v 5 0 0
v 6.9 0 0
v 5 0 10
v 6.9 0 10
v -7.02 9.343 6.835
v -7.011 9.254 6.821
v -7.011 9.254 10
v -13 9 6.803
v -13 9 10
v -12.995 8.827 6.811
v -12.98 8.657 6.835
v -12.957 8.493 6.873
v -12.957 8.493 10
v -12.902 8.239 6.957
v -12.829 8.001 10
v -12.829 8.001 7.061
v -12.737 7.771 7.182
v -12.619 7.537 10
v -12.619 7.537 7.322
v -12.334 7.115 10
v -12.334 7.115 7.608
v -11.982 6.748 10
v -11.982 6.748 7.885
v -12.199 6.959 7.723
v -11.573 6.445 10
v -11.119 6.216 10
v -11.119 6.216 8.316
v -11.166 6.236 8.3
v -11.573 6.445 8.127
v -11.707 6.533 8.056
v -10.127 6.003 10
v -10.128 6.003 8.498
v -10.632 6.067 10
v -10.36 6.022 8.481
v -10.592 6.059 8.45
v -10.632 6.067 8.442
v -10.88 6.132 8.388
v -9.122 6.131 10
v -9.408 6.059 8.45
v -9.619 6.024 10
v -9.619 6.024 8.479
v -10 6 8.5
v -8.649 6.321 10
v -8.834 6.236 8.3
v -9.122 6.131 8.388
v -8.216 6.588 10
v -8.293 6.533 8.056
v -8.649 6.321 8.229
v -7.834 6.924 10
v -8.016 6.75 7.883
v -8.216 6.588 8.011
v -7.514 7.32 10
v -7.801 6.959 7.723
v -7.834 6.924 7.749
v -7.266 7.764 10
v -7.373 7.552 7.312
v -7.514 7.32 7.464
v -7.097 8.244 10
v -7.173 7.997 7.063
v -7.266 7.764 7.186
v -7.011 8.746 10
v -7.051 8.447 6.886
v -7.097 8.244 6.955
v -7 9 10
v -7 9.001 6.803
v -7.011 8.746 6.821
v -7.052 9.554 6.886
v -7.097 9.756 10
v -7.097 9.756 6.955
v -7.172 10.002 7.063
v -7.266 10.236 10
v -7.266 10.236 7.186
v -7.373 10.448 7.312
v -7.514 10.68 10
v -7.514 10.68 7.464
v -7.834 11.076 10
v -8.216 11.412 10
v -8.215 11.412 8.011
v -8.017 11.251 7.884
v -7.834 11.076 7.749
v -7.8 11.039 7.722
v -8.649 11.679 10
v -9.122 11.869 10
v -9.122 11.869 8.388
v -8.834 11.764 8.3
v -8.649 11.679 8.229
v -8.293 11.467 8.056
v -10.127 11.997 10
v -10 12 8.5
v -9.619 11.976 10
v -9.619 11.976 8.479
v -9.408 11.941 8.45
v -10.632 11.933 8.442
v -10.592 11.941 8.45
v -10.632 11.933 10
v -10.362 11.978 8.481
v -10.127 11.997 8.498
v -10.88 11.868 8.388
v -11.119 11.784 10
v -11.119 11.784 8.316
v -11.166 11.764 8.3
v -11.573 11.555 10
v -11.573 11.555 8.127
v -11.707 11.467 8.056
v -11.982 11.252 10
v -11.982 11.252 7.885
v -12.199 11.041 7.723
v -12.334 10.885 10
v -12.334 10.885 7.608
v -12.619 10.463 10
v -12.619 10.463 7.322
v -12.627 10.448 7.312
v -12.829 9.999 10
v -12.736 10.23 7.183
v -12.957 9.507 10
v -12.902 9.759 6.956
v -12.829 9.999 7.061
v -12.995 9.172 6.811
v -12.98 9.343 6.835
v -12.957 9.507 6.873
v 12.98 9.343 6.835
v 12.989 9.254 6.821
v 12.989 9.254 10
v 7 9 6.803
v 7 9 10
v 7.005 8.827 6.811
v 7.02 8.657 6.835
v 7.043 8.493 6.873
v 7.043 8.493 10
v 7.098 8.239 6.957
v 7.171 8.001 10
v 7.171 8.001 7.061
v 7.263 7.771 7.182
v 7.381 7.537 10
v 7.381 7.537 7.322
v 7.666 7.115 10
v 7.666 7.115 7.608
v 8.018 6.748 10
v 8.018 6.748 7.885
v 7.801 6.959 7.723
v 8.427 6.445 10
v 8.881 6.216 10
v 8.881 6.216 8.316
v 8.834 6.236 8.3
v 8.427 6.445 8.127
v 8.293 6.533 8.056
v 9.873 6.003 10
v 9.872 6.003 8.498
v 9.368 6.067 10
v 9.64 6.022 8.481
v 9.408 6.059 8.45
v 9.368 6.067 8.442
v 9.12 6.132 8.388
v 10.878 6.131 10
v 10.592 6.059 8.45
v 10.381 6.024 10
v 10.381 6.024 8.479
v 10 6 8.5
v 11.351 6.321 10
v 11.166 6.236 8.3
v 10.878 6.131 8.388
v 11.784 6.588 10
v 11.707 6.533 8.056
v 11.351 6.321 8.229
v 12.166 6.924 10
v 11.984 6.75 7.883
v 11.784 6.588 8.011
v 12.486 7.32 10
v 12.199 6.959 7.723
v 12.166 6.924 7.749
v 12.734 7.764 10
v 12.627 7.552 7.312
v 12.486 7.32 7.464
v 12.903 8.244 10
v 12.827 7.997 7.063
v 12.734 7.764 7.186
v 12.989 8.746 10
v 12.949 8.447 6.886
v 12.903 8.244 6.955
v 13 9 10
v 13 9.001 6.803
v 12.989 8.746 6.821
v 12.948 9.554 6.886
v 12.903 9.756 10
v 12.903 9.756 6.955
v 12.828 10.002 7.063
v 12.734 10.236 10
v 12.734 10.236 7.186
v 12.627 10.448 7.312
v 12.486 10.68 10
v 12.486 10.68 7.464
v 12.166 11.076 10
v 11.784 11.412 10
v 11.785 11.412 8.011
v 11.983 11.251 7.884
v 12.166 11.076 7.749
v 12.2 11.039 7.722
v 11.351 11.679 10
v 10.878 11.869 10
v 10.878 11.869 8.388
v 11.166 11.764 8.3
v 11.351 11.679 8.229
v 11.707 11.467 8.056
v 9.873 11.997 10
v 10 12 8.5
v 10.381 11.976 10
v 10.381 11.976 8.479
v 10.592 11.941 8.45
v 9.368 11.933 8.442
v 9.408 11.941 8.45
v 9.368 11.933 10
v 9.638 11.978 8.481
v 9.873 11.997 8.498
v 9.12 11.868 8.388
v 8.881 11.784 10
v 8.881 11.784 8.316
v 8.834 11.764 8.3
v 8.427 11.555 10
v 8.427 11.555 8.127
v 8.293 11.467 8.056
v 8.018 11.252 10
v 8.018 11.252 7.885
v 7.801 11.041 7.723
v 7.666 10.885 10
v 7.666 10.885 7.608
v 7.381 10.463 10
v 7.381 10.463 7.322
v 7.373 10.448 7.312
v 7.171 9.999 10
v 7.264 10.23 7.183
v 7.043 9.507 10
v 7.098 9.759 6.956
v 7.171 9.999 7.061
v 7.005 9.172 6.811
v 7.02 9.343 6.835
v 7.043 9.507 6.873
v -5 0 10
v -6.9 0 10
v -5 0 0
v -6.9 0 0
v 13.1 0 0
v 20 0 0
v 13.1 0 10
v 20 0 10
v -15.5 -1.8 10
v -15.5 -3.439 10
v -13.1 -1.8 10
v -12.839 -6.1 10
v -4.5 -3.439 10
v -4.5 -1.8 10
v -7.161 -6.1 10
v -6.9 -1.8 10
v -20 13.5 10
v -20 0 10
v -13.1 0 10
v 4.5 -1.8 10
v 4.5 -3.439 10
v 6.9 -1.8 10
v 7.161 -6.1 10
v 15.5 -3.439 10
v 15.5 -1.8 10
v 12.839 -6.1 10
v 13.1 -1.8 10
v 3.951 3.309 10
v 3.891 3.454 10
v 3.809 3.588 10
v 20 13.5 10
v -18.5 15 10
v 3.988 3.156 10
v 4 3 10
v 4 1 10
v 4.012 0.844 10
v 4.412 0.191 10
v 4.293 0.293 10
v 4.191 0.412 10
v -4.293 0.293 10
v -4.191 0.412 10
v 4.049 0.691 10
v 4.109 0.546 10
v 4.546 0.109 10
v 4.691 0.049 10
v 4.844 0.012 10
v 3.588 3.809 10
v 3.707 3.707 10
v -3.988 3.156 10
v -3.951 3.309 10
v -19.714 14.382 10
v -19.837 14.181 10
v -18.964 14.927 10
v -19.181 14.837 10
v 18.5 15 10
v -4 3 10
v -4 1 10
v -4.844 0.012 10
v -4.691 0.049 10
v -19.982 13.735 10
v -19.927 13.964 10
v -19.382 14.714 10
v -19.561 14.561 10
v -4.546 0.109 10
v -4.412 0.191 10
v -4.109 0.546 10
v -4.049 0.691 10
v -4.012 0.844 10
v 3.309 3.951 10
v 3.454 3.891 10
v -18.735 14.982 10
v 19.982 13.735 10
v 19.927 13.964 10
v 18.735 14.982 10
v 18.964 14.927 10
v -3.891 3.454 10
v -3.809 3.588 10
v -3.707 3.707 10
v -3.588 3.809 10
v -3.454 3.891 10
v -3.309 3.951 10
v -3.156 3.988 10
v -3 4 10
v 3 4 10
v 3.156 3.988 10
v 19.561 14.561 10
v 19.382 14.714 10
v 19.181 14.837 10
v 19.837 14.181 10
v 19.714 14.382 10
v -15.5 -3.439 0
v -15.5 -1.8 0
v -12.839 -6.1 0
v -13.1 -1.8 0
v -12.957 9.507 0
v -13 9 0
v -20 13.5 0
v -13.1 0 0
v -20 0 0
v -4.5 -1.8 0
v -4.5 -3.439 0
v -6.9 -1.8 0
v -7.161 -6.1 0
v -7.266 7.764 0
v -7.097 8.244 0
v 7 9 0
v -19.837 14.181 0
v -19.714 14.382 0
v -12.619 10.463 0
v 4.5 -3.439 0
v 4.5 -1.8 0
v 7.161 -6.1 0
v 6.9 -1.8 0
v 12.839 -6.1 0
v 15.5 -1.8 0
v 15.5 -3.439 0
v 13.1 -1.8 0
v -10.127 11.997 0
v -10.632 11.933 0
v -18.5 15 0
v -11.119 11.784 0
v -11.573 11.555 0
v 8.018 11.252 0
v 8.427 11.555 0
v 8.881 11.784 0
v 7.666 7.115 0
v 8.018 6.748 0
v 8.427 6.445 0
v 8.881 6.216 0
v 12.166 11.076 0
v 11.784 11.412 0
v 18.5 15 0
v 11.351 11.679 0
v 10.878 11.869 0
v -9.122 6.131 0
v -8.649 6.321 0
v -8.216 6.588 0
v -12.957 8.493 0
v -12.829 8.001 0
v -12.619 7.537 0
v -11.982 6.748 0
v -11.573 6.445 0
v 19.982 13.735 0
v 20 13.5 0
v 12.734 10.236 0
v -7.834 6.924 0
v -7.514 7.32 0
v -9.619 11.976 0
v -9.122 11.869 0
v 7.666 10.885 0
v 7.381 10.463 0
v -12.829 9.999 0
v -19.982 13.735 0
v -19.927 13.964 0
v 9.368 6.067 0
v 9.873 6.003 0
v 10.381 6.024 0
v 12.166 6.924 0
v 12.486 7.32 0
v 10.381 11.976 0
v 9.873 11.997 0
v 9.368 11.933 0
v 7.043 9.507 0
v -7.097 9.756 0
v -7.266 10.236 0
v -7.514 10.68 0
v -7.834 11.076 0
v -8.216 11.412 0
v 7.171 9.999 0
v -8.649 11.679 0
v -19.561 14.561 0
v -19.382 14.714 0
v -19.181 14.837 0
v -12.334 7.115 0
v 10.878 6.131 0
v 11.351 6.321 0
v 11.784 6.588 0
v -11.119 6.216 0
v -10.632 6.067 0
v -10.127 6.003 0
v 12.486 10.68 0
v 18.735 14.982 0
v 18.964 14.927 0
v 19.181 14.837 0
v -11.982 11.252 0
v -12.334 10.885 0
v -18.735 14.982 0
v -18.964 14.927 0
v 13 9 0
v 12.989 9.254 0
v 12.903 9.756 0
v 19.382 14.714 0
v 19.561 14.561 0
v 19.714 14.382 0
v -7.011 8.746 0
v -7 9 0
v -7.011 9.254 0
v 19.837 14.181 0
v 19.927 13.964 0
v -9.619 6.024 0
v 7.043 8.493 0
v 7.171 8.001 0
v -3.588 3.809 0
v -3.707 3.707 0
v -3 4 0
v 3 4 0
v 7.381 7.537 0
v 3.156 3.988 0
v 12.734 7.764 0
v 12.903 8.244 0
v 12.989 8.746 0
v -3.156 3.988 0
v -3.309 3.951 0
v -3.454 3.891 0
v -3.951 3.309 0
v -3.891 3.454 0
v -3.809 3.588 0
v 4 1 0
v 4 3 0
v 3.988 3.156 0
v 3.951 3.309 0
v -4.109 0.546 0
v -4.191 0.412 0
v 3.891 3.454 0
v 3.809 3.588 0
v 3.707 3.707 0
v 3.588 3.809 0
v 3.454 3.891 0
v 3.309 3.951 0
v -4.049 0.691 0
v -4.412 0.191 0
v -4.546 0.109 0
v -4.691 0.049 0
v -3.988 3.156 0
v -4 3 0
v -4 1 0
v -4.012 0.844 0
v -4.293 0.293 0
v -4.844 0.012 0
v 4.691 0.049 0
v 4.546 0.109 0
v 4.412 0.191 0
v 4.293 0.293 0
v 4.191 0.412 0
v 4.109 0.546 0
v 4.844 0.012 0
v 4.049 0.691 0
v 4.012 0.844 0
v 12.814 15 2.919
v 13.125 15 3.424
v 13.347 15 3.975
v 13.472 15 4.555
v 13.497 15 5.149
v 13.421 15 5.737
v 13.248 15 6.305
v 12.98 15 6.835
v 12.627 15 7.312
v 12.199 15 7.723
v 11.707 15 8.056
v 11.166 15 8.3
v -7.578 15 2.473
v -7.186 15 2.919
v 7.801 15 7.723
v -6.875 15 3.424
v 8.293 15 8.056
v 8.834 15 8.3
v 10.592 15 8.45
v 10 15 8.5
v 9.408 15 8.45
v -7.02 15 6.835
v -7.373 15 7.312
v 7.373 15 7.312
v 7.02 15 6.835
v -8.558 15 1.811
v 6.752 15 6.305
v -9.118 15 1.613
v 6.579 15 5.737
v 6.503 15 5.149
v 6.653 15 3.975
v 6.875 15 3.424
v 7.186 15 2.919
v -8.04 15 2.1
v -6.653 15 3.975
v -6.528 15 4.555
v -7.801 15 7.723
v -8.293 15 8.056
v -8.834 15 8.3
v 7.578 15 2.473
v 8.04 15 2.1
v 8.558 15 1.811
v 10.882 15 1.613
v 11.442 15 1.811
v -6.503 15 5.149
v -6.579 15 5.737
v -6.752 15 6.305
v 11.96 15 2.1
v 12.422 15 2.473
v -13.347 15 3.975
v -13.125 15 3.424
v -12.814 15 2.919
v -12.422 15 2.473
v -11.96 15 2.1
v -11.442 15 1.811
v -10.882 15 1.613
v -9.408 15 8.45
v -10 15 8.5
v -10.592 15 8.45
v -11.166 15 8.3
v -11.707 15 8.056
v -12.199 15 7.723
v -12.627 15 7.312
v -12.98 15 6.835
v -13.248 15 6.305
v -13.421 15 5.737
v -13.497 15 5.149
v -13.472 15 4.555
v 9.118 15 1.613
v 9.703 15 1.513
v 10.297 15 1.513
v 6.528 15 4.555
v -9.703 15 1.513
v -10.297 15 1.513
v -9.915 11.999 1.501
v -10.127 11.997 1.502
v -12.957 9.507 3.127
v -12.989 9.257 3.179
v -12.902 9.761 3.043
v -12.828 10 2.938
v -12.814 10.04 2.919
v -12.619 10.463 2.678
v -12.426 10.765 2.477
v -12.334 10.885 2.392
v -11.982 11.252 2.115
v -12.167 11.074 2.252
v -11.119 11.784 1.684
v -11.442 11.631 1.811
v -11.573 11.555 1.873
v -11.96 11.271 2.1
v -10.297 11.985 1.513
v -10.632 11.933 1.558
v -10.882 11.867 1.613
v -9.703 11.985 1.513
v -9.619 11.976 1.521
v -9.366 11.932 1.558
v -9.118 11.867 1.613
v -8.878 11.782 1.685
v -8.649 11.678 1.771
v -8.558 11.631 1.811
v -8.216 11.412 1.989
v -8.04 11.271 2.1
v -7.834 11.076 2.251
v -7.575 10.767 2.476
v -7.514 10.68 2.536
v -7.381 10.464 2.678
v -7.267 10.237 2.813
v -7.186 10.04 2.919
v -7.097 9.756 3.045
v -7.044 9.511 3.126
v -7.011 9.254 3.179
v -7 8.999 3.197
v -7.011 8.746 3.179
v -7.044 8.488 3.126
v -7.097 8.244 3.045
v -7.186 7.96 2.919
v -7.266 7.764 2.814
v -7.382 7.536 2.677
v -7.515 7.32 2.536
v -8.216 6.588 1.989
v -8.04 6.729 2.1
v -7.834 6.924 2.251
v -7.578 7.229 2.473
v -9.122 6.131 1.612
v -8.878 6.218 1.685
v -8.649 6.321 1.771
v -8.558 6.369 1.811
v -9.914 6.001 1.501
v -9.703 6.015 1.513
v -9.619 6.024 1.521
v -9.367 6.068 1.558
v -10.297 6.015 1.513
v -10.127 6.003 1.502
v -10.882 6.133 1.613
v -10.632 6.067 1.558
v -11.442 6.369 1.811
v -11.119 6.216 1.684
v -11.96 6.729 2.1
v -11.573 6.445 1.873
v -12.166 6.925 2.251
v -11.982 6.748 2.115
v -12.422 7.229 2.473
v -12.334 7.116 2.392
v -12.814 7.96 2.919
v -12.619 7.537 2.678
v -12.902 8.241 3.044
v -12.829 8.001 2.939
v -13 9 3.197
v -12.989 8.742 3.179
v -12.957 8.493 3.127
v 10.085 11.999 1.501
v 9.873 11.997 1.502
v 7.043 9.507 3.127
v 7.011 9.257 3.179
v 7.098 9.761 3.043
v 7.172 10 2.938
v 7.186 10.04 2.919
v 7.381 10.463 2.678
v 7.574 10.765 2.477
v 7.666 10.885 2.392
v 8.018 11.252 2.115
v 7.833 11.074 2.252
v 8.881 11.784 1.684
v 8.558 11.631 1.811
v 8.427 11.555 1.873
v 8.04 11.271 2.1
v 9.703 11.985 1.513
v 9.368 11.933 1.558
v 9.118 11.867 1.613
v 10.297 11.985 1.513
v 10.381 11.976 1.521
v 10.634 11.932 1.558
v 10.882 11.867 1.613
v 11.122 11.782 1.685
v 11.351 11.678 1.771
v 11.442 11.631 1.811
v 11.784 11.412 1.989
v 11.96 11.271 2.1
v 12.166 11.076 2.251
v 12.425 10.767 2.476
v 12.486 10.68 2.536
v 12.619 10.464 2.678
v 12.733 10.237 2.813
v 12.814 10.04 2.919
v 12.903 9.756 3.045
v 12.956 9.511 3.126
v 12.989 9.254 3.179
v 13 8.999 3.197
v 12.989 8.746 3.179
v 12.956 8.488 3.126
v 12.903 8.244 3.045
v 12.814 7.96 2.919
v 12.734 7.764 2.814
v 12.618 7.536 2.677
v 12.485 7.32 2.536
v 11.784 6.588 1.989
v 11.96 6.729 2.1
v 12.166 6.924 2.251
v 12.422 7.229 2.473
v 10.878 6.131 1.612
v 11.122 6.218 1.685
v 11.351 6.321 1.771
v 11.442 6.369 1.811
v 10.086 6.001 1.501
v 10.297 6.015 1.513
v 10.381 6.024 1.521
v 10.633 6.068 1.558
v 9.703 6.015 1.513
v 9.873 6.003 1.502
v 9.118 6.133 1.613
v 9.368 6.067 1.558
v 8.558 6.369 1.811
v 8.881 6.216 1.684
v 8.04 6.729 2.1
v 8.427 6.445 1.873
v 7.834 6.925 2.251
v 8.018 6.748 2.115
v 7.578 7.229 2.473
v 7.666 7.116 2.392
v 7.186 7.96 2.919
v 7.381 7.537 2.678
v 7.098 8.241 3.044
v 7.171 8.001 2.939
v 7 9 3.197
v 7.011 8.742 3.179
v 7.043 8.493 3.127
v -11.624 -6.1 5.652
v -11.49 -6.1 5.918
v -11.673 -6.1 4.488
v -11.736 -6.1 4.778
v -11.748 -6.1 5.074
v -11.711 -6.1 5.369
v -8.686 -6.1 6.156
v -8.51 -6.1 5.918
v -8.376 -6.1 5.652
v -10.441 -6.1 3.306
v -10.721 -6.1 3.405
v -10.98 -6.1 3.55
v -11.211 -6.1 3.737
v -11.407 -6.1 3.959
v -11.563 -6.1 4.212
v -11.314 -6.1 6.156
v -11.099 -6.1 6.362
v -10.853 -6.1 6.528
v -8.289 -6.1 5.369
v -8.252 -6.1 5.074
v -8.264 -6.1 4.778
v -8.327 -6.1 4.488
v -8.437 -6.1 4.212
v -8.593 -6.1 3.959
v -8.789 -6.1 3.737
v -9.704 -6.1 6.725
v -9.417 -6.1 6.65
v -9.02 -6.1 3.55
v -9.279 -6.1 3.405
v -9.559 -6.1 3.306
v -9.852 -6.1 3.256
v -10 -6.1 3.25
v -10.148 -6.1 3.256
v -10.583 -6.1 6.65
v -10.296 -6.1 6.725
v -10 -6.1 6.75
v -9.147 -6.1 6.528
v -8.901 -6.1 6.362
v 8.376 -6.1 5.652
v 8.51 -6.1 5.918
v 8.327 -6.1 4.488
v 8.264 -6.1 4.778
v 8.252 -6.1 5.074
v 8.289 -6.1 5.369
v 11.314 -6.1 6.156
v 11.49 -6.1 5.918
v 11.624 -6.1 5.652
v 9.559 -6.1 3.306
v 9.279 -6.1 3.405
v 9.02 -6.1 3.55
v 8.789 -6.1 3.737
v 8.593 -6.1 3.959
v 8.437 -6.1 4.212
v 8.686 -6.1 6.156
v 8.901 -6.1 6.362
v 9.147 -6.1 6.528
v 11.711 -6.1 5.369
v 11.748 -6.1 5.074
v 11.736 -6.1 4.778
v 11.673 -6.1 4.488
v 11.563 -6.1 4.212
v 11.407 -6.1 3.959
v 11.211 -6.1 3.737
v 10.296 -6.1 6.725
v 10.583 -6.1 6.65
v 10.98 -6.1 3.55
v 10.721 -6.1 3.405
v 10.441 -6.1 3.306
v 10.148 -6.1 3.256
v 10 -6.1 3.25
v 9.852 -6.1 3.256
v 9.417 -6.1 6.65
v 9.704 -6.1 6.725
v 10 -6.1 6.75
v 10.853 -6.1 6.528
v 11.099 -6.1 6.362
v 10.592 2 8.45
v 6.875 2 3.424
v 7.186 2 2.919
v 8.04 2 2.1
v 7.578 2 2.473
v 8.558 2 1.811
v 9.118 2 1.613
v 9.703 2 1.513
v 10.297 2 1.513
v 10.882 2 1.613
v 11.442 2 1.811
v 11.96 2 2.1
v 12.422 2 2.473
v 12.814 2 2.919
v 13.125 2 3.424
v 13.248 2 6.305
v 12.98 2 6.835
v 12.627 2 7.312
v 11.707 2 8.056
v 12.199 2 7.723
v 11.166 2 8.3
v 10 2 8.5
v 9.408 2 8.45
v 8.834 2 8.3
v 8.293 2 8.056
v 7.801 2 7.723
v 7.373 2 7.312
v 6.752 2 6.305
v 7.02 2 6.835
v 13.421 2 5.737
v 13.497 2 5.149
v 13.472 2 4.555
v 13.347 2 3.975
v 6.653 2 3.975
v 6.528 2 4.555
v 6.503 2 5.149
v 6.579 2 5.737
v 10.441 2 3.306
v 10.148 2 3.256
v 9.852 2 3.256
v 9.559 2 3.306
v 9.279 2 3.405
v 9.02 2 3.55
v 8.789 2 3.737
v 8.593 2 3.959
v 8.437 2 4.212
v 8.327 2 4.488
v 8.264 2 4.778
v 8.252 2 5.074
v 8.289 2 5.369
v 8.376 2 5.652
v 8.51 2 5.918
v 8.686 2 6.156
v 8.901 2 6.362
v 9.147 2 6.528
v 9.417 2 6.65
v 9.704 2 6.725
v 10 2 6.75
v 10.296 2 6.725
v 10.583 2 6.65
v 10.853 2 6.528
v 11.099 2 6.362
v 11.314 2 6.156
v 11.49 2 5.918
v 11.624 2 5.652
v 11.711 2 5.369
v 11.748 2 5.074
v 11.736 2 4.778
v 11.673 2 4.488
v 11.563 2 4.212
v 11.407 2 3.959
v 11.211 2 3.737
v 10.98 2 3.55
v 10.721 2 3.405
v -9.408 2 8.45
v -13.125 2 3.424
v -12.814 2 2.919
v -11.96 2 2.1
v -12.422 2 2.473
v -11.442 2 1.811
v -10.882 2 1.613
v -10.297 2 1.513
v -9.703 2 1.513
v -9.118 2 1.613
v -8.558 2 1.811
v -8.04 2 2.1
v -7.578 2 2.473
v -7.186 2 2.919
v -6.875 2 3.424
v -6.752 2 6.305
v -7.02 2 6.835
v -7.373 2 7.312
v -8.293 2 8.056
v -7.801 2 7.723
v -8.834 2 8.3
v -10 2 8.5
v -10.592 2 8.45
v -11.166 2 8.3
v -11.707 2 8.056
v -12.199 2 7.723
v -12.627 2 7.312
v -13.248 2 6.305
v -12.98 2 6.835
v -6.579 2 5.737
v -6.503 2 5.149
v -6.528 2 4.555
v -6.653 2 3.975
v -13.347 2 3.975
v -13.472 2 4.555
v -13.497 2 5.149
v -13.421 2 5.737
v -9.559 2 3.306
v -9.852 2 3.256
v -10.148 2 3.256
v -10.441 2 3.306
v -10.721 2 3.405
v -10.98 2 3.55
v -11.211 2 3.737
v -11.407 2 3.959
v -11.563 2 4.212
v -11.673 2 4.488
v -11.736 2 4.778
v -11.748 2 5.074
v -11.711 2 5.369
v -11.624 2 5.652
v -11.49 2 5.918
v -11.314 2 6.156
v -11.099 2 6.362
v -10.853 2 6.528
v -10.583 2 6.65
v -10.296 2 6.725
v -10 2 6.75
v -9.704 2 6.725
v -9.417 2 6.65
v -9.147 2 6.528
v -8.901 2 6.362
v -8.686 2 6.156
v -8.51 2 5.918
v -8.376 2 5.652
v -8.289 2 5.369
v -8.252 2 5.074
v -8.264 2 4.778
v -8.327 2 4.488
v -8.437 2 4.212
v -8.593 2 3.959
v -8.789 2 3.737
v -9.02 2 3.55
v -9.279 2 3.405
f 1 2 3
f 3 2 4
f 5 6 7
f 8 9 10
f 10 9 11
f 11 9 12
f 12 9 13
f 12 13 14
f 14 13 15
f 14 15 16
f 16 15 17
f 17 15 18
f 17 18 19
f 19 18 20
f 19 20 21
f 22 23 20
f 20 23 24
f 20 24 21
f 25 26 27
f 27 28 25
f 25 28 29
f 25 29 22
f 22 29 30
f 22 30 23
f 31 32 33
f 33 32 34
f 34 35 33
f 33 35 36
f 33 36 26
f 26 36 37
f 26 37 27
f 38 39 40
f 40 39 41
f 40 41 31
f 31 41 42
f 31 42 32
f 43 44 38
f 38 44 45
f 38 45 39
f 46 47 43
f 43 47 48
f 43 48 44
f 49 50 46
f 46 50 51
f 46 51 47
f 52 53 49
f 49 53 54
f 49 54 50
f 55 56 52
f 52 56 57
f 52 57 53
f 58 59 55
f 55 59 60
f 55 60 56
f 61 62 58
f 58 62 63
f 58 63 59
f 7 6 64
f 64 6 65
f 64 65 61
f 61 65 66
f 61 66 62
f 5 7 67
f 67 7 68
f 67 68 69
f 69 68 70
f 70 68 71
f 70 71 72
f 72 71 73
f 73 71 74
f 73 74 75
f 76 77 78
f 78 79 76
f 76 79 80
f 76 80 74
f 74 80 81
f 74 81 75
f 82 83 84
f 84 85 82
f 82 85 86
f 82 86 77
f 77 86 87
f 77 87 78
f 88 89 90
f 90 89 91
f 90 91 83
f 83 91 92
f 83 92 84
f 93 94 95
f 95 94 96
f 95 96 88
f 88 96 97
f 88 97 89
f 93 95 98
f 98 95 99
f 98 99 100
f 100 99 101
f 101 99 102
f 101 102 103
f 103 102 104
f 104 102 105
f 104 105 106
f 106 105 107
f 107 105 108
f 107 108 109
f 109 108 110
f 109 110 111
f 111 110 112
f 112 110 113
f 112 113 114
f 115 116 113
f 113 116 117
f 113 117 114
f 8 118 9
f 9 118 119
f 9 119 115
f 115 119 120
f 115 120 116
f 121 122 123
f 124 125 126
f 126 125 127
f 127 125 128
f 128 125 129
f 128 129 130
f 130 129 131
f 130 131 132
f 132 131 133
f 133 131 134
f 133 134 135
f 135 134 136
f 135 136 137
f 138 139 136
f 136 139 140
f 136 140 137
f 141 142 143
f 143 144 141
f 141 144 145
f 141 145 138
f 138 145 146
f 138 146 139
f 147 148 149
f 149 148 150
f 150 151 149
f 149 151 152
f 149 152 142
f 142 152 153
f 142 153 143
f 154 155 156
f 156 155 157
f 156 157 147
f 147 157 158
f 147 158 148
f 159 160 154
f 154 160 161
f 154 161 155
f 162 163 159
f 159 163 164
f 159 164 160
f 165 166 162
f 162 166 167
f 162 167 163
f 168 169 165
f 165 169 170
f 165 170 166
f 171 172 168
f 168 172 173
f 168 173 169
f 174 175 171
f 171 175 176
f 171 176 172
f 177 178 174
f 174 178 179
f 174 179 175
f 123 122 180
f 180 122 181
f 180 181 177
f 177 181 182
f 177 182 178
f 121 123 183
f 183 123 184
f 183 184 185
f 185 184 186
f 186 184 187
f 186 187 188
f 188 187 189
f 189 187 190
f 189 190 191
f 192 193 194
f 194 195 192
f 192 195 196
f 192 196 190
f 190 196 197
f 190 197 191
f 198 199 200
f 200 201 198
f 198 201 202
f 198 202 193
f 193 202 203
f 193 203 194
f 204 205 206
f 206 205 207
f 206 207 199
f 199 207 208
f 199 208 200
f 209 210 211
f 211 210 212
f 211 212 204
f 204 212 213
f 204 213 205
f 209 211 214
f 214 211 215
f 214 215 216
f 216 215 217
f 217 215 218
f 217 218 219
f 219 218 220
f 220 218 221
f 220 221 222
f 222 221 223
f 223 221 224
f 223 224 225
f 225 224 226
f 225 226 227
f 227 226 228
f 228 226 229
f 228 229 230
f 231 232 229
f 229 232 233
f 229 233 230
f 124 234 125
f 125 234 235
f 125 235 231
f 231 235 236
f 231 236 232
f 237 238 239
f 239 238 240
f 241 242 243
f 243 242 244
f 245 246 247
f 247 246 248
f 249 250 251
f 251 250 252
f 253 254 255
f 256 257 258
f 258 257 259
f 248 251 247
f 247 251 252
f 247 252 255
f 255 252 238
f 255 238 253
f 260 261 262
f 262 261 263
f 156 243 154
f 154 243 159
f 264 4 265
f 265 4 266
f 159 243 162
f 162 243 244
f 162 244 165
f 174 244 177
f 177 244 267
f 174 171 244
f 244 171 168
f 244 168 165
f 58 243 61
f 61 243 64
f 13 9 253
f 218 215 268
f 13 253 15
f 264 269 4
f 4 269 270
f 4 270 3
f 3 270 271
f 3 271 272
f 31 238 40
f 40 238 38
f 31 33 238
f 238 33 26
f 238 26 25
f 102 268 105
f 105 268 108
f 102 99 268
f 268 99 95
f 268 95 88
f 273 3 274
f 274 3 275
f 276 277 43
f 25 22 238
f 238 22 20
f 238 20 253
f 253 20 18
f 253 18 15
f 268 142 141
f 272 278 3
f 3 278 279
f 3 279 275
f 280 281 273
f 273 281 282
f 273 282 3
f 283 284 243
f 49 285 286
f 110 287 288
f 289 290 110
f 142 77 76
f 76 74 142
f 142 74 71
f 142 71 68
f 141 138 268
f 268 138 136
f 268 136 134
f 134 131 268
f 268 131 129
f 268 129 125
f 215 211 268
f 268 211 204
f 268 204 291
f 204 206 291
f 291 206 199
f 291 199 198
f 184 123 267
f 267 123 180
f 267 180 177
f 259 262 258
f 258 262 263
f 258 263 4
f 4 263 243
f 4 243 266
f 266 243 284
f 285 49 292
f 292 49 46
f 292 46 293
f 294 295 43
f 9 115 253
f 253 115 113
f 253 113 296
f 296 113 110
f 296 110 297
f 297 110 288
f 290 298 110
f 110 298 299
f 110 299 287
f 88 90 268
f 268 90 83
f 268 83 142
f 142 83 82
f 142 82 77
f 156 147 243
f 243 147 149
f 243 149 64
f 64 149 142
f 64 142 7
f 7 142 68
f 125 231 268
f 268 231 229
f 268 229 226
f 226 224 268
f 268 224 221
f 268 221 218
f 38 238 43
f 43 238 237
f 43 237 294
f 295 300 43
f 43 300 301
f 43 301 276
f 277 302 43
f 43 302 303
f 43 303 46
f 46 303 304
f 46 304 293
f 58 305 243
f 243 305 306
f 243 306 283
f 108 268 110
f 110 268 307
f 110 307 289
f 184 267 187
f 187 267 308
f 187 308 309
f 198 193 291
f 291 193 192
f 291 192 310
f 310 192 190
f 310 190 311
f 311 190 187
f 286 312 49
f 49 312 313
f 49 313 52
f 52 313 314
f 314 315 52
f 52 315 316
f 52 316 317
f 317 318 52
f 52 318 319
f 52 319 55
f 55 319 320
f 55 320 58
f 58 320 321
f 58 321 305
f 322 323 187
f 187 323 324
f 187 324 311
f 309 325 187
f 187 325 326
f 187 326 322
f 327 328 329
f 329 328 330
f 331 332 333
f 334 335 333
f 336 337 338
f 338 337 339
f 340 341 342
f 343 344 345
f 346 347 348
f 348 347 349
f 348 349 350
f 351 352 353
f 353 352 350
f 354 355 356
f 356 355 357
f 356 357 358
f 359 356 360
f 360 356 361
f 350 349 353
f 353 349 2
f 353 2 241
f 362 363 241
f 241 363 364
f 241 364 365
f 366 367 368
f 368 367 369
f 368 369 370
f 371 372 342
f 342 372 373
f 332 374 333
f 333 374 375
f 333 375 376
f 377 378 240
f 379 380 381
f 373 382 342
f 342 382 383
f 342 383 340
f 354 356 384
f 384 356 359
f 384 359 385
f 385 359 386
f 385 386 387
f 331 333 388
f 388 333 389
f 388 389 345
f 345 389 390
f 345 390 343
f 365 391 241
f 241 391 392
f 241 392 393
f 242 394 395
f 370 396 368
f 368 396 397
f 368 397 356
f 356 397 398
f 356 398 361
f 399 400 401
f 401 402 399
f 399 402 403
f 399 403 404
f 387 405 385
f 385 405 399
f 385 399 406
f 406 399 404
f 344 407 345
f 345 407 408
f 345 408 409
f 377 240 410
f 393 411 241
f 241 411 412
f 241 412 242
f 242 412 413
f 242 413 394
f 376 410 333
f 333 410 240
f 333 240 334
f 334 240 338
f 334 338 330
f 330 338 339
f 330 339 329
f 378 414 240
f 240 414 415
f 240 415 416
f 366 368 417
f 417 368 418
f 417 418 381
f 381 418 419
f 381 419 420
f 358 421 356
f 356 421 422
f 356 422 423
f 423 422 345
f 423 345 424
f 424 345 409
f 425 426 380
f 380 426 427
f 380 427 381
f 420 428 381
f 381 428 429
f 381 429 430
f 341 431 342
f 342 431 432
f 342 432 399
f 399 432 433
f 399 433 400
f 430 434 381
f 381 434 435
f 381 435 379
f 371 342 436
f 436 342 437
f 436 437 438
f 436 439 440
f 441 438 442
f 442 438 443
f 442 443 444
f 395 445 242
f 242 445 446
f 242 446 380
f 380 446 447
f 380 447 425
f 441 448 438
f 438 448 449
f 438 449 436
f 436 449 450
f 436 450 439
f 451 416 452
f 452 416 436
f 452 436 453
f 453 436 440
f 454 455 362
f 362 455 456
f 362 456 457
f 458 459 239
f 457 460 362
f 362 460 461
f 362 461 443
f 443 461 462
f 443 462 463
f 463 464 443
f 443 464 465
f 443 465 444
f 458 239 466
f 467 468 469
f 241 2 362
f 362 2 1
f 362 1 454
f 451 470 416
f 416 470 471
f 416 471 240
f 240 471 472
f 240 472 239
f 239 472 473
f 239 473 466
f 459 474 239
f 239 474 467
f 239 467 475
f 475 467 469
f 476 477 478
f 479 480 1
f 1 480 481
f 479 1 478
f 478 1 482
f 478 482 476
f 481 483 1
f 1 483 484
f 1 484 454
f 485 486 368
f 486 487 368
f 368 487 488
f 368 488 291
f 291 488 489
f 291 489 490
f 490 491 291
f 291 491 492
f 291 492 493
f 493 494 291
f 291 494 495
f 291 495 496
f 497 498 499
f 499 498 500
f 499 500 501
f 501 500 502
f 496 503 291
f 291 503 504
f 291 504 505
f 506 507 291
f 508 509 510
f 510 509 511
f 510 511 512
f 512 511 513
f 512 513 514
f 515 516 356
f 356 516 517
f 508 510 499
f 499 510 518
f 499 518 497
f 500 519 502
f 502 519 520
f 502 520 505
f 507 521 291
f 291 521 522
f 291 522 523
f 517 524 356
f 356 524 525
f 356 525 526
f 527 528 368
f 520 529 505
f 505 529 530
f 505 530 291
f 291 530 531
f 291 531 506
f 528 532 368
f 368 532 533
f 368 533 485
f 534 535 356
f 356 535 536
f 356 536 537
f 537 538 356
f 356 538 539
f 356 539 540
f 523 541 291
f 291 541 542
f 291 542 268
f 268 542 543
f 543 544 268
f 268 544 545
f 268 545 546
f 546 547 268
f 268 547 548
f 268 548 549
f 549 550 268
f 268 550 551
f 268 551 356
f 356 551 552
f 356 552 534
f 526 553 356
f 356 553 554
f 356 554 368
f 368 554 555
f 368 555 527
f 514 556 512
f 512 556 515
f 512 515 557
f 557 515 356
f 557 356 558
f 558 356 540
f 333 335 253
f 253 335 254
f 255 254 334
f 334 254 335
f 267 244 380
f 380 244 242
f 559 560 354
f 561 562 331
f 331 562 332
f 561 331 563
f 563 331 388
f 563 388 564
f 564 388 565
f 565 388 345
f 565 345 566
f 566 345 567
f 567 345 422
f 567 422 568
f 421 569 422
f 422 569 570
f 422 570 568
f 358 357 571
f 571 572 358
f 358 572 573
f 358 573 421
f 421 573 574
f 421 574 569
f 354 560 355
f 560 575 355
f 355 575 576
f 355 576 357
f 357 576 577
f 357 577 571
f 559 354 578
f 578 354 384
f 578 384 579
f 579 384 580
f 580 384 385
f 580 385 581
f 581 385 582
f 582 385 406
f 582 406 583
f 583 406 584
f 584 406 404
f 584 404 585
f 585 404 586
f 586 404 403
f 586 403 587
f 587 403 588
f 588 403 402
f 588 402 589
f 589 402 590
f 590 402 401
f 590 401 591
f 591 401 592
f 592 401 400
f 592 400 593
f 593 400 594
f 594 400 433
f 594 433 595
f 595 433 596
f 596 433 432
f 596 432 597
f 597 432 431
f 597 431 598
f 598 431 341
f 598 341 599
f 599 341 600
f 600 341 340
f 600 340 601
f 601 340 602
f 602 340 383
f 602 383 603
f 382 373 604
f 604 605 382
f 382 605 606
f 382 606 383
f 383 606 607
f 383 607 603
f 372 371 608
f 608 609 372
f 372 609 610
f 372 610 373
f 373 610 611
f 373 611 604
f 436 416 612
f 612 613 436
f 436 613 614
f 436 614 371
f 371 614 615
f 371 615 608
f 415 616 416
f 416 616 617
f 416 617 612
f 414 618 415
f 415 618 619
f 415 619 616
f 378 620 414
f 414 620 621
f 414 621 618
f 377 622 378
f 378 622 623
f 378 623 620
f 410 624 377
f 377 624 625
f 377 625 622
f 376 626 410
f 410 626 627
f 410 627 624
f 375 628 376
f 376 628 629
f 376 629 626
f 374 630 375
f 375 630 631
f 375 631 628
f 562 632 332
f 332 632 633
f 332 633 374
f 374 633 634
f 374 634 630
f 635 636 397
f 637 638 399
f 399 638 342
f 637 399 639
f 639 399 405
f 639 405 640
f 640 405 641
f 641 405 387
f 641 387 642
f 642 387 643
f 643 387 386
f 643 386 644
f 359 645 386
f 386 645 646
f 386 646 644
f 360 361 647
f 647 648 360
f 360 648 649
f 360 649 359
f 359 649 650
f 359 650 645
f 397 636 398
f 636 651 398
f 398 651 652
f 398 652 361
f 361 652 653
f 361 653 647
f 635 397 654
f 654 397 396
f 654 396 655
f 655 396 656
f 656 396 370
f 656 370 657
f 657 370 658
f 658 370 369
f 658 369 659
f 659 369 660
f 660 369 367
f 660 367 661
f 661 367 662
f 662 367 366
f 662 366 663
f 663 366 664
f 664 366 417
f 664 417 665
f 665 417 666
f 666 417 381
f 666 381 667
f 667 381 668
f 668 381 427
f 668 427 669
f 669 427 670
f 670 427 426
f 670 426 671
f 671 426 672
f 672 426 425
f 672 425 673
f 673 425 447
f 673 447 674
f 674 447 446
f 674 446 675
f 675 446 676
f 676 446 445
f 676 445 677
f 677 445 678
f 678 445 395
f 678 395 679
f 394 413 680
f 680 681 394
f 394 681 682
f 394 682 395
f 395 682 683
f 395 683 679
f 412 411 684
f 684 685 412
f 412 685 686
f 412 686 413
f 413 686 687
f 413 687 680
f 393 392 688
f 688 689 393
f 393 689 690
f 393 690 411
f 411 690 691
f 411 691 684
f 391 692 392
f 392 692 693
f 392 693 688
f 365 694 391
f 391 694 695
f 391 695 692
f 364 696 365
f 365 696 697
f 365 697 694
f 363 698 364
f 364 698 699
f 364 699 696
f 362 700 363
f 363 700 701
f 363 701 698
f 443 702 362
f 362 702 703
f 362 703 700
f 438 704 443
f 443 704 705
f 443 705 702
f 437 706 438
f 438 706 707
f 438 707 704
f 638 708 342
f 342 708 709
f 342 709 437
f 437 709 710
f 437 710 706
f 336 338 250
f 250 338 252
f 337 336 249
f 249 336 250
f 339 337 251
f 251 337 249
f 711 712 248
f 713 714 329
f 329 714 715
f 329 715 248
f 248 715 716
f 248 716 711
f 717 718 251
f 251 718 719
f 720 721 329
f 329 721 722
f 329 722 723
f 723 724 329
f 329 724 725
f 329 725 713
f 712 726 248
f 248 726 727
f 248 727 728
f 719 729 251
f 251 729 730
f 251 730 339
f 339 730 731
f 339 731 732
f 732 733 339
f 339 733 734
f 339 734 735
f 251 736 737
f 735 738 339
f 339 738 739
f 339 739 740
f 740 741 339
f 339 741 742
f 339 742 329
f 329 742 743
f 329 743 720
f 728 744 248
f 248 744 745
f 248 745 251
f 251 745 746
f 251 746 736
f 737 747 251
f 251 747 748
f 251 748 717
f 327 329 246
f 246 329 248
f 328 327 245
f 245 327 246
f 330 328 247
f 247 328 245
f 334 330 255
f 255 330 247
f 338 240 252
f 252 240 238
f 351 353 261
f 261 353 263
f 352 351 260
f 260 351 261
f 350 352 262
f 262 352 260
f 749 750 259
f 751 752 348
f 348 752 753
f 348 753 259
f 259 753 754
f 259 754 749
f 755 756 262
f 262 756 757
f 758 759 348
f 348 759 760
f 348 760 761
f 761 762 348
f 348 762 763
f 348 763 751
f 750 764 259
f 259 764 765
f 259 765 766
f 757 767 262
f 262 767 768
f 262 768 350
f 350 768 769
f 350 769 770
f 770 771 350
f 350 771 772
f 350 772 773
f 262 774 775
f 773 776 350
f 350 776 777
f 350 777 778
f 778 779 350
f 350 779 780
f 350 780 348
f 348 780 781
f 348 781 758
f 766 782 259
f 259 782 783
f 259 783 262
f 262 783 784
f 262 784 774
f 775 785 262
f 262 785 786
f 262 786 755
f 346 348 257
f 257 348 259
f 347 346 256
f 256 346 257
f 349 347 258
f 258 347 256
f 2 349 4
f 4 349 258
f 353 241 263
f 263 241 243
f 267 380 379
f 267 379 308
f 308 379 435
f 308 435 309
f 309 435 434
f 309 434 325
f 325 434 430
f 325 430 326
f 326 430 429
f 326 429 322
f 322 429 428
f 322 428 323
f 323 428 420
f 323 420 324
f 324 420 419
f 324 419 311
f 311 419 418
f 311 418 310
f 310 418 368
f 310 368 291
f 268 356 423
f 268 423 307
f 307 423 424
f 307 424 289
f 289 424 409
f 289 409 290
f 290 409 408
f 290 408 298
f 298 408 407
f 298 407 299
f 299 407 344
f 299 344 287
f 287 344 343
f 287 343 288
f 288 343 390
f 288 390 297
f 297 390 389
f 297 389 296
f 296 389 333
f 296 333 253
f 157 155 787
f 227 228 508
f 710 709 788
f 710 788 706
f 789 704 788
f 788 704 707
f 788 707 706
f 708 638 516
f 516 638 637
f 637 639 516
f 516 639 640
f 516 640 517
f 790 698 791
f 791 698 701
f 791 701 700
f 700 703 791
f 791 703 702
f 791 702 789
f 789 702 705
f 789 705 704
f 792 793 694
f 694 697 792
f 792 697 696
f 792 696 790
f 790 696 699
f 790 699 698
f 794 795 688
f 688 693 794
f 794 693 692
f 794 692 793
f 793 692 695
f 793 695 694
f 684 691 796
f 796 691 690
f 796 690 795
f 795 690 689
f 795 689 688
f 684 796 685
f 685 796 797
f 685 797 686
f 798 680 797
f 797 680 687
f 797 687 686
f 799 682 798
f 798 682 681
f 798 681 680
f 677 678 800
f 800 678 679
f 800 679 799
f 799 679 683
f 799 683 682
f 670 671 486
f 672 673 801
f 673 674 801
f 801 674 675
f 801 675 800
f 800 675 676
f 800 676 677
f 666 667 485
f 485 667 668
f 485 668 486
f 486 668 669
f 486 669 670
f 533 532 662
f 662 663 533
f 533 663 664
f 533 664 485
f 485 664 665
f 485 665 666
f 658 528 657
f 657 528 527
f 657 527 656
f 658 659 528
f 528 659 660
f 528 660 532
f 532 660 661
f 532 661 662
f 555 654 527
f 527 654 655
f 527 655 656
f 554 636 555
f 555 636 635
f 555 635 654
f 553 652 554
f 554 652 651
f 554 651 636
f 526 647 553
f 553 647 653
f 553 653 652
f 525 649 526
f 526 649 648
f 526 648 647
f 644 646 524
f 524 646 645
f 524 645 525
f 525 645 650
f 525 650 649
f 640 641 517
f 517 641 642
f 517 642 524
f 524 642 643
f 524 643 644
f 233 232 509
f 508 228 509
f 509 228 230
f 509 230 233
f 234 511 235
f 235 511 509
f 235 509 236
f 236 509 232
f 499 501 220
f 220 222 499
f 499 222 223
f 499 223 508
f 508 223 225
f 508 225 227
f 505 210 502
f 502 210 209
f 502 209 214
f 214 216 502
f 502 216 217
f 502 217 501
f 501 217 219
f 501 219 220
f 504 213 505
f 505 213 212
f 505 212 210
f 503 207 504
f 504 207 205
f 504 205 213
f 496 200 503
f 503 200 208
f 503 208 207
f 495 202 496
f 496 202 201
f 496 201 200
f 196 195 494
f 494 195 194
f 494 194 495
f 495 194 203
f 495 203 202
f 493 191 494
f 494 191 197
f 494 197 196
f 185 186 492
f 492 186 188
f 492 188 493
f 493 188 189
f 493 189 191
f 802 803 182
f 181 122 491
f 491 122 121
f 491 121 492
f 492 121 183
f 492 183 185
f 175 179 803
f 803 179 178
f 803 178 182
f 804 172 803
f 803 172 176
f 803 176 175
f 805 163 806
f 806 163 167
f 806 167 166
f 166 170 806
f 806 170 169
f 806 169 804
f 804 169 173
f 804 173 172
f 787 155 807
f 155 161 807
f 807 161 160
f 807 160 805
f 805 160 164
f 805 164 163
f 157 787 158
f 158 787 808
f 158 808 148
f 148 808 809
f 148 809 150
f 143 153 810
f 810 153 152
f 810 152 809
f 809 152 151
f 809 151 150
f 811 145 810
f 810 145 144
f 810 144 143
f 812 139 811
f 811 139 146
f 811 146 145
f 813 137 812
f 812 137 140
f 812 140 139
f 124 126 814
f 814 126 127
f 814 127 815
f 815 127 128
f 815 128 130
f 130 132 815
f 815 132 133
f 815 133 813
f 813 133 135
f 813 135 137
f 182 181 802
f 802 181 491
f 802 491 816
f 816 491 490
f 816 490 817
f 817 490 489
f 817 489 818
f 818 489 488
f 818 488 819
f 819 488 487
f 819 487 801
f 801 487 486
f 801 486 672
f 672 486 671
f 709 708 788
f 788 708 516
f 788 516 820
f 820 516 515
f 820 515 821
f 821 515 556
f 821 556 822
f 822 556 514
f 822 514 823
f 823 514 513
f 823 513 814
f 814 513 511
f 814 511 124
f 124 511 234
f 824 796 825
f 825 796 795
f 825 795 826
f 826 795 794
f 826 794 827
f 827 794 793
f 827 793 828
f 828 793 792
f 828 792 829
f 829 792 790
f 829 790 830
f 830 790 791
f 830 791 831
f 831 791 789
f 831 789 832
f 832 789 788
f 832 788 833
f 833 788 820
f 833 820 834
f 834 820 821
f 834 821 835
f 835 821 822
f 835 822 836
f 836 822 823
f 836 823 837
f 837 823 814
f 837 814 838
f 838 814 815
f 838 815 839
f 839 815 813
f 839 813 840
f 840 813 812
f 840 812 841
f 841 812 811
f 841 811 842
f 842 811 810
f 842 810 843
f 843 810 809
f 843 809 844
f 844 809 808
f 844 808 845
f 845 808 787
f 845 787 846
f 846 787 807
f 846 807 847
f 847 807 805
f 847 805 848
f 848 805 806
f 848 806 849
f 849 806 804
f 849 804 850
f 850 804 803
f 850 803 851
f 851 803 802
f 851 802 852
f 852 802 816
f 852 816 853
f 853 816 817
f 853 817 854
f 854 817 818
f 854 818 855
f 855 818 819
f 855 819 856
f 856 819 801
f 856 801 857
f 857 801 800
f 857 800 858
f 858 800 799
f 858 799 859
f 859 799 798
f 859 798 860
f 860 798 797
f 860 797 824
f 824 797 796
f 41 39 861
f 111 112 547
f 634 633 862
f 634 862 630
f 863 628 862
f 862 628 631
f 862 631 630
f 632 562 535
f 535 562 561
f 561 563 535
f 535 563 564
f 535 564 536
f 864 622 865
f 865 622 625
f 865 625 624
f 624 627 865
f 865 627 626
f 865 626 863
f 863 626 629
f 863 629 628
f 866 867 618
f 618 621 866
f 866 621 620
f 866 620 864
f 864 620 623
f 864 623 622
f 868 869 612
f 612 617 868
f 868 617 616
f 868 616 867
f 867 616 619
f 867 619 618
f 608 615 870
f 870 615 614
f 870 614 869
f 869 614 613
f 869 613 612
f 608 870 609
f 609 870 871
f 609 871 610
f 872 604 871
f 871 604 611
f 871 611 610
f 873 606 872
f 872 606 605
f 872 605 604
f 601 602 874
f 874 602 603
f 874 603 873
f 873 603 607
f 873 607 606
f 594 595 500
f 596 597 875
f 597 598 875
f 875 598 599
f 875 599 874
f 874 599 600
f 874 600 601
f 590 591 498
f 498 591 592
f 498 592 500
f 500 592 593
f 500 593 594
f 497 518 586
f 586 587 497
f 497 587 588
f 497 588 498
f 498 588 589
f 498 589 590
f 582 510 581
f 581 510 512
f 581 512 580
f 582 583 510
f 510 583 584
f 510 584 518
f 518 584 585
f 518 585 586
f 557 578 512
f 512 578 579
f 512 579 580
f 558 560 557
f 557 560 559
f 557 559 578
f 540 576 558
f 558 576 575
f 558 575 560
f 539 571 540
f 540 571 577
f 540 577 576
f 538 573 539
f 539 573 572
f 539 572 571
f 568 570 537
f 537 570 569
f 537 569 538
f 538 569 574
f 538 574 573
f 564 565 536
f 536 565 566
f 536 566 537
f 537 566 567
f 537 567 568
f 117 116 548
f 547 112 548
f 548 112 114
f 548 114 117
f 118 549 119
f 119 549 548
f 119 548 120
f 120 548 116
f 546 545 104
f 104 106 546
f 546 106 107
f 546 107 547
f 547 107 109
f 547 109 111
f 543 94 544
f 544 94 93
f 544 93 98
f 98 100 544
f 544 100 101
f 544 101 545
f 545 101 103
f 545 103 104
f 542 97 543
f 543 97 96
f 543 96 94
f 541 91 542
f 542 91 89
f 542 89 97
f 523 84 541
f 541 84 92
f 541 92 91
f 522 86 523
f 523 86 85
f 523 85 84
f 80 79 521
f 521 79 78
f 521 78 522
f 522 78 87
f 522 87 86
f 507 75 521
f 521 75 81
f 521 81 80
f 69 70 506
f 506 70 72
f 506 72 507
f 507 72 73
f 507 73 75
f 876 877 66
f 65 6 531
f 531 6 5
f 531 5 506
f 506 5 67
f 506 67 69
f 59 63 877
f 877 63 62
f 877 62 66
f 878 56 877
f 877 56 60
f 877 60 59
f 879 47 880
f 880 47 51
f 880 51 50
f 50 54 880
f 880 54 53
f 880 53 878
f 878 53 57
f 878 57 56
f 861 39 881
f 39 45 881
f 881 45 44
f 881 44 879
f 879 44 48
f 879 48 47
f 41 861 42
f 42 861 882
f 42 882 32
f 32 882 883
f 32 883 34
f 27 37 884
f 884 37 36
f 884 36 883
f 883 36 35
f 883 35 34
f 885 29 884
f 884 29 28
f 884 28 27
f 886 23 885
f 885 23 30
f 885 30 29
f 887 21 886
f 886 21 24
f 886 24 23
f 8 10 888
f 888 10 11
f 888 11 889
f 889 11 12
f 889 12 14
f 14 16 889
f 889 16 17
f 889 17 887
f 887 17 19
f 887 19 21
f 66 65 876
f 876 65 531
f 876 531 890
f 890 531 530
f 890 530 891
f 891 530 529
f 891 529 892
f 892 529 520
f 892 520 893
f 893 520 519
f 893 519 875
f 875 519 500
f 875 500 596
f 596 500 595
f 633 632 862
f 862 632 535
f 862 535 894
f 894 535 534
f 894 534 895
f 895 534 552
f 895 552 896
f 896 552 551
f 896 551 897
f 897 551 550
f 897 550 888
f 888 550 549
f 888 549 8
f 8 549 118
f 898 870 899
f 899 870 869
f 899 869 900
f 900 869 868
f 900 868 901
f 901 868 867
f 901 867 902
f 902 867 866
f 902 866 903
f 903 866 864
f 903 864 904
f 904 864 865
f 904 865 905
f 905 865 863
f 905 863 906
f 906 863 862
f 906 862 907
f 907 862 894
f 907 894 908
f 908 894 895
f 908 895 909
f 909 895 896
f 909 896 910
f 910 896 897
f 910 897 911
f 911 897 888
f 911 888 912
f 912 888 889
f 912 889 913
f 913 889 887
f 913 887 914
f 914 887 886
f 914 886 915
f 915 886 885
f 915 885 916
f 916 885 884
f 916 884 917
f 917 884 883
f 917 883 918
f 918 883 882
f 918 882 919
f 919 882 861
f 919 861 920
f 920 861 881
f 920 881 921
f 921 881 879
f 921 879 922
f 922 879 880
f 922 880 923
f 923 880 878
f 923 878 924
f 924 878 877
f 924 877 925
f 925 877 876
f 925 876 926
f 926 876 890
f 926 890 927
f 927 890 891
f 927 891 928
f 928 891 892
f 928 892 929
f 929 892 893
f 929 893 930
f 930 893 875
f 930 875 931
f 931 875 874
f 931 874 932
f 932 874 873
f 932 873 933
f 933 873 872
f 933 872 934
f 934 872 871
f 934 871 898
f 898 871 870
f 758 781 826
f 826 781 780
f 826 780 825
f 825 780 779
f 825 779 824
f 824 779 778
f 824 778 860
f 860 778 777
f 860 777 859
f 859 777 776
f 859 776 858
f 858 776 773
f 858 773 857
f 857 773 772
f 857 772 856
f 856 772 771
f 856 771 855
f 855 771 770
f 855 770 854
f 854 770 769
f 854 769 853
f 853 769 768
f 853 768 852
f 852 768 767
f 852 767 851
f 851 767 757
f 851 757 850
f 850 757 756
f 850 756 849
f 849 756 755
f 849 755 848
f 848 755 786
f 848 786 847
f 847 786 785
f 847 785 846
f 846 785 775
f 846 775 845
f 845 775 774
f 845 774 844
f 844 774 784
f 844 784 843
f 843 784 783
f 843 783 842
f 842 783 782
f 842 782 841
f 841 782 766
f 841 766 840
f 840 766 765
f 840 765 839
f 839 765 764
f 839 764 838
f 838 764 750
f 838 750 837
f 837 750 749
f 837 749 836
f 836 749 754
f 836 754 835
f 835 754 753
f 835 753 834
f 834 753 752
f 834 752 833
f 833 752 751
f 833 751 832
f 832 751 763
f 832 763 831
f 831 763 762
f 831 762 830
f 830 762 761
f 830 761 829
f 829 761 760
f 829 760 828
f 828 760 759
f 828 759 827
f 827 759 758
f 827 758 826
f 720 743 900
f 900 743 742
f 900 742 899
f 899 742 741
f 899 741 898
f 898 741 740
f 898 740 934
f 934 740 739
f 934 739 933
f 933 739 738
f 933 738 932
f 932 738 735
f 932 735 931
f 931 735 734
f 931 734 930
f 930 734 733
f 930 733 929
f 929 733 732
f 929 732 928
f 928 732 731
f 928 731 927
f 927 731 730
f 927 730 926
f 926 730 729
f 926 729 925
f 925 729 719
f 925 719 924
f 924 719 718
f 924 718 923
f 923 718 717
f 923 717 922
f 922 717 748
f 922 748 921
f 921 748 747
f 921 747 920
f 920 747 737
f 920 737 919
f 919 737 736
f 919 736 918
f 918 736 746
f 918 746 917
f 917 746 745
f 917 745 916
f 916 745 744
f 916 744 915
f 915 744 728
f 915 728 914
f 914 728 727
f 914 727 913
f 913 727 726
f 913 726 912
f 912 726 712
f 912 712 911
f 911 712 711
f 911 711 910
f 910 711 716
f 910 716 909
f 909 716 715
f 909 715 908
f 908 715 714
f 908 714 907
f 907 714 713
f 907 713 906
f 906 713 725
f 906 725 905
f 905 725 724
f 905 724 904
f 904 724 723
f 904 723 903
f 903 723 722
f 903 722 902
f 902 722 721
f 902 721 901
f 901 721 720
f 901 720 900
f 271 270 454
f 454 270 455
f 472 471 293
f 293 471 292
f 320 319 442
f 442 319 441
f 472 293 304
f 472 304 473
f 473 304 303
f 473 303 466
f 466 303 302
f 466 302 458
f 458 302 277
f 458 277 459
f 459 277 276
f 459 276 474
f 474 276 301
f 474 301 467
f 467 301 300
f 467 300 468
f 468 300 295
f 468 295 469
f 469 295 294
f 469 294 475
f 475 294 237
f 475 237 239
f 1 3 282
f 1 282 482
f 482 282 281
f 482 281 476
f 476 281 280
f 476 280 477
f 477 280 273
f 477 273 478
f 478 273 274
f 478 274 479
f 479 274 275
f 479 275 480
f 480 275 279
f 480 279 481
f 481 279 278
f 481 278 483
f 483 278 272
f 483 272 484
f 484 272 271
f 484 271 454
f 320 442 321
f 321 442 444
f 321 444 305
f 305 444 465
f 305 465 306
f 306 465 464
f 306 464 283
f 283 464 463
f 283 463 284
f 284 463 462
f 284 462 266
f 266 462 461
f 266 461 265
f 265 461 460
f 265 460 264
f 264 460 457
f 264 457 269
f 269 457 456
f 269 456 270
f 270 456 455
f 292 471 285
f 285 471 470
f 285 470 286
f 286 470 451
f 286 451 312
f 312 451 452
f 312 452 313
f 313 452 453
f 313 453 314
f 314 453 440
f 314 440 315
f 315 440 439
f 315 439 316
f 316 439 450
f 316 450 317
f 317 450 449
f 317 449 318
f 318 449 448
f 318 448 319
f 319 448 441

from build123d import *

# Parameters (mm, degrees)
SKETCH_1_W          = 40
SKETCH_1_H          = 15
SKETCH_1_R          = 3
EXTRUDE_1_DEPTH     = 10
EXTRUDE_2_DEPTH     = 10
FILLET_1_R          = 1.5
SKETCH_5_R          = 3.5
CUT_EXTRUDE_1_DEPTH = 13
SKETCH_6_R          = 1.75
CUT_EXTRUDE_2_DEPTH = 13
CUT_EXTRUDE_3_DEPTH = 13
FILLET_2_R          = 1


with BuildPart() as part:
    # 草图1 → 凸台-拉伸1 (new body)
    with BuildSketch(Plane.XY):
        with Locations((0, 7.5)):
            Rectangle(SKETCH_1_W, SKETCH_1_H)
        with Locations((-10, 9)):
            Circle(SKETCH_1_R, mode=Mode.SUBTRACT)
        with Locations((10, 9)):
            Circle(SKETCH_1_R, mode=Mode.SUBTRACT)
    extrude(amount=EXTRUDE_1_DEPTH)

    # 草图4 → 凸台-拉伸2 (add)
    with BuildSketch(Plane.XY.offset(10)):
        Polygon((-6.9, -1.8), (-6.9, 0), (-13.1, 0), (-13.1, -1.8), (-15.5, -1.8), (-15.5, -3.439339828), (-12.839339828, -6.1), (-7.160660172, -6.1), (-4.5, -3.439339828), (-4.5, -1.8), align=None)
        Polygon((13.1, -1.8), (13.1, 0), (6.9, 0), (6.9, -1.8), (4.5, -1.8), (4.5, -3.439339828), (7.160660172, -6.1), (12.839339828, -6.1), (15.5, -3.439339828), (15.5, -1.8), align=None)
    extrude(amount=-EXTRUDE_2_DEPTH)

    # 圆角1
    fillet_1_edges = [part.edges().sort_by_distance(p)[0] for p in [
        (20, 15, 5),
        (-20, 15, 5),
    ]]
    fillet(fillet_1_edges, radius=FILLET_1_R)

    # 草图5 → 切除-拉伸1 (cut)
    with BuildSketch(Plane(origin=(0, 15, 0), x_dir=(1, 0, 0), z_dir=(0, 1, 0))):
        with Locations(Location((-10, -5, 0), (0, 0, 270))):
            Circle(SKETCH_5_R)
        with Locations(Location((10, -5, 0), (0, 0, 270))):
            Circle(SKETCH_5_R)
    extrude(amount=-CUT_EXTRUDE_1_DEPTH, mode=Mode.SUBTRACT)

    # 草图6 → 切除-拉伸2 (cut)
    with BuildSketch(Plane(origin=(0, 2, 0), x_dir=(1, 0, 0), z_dir=(0, 1, 0))):
        with Locations(Location((10, -5, 0), (0, 0, 270))):
            Circle(SKETCH_6_R)
        with Locations(Location((-10, -5, 0), (0, 0, 270))):
            Circle(SKETCH_6_R)
    extrude(amount=-CUT_EXTRUDE_2_DEPTH, mode=Mode.SUBTRACT)

    # 草图7 → 切除-拉伸3 (cut)
    with BuildSketch(Plane.XY.offset(10)):
        Polygon((0, 4), (-4, 4), (-4, 0), (4, 0), (4, 4), align=None)
    extrude(amount=-CUT_EXTRUDE_3_DEPTH, mode=Mode.SUBTRACT)

    # 圆角2
    fillet_2_edges = [part.edges().sort_by_distance(p)[0] for p in [
        (4, 4, 5),
        (4, 0, 5),
        (-4, 0, 5),
        (-4, 4, 5),
    ]]
    fillet(fillet_2_edges, radius=FILLET_2_R)


solid = part.part
